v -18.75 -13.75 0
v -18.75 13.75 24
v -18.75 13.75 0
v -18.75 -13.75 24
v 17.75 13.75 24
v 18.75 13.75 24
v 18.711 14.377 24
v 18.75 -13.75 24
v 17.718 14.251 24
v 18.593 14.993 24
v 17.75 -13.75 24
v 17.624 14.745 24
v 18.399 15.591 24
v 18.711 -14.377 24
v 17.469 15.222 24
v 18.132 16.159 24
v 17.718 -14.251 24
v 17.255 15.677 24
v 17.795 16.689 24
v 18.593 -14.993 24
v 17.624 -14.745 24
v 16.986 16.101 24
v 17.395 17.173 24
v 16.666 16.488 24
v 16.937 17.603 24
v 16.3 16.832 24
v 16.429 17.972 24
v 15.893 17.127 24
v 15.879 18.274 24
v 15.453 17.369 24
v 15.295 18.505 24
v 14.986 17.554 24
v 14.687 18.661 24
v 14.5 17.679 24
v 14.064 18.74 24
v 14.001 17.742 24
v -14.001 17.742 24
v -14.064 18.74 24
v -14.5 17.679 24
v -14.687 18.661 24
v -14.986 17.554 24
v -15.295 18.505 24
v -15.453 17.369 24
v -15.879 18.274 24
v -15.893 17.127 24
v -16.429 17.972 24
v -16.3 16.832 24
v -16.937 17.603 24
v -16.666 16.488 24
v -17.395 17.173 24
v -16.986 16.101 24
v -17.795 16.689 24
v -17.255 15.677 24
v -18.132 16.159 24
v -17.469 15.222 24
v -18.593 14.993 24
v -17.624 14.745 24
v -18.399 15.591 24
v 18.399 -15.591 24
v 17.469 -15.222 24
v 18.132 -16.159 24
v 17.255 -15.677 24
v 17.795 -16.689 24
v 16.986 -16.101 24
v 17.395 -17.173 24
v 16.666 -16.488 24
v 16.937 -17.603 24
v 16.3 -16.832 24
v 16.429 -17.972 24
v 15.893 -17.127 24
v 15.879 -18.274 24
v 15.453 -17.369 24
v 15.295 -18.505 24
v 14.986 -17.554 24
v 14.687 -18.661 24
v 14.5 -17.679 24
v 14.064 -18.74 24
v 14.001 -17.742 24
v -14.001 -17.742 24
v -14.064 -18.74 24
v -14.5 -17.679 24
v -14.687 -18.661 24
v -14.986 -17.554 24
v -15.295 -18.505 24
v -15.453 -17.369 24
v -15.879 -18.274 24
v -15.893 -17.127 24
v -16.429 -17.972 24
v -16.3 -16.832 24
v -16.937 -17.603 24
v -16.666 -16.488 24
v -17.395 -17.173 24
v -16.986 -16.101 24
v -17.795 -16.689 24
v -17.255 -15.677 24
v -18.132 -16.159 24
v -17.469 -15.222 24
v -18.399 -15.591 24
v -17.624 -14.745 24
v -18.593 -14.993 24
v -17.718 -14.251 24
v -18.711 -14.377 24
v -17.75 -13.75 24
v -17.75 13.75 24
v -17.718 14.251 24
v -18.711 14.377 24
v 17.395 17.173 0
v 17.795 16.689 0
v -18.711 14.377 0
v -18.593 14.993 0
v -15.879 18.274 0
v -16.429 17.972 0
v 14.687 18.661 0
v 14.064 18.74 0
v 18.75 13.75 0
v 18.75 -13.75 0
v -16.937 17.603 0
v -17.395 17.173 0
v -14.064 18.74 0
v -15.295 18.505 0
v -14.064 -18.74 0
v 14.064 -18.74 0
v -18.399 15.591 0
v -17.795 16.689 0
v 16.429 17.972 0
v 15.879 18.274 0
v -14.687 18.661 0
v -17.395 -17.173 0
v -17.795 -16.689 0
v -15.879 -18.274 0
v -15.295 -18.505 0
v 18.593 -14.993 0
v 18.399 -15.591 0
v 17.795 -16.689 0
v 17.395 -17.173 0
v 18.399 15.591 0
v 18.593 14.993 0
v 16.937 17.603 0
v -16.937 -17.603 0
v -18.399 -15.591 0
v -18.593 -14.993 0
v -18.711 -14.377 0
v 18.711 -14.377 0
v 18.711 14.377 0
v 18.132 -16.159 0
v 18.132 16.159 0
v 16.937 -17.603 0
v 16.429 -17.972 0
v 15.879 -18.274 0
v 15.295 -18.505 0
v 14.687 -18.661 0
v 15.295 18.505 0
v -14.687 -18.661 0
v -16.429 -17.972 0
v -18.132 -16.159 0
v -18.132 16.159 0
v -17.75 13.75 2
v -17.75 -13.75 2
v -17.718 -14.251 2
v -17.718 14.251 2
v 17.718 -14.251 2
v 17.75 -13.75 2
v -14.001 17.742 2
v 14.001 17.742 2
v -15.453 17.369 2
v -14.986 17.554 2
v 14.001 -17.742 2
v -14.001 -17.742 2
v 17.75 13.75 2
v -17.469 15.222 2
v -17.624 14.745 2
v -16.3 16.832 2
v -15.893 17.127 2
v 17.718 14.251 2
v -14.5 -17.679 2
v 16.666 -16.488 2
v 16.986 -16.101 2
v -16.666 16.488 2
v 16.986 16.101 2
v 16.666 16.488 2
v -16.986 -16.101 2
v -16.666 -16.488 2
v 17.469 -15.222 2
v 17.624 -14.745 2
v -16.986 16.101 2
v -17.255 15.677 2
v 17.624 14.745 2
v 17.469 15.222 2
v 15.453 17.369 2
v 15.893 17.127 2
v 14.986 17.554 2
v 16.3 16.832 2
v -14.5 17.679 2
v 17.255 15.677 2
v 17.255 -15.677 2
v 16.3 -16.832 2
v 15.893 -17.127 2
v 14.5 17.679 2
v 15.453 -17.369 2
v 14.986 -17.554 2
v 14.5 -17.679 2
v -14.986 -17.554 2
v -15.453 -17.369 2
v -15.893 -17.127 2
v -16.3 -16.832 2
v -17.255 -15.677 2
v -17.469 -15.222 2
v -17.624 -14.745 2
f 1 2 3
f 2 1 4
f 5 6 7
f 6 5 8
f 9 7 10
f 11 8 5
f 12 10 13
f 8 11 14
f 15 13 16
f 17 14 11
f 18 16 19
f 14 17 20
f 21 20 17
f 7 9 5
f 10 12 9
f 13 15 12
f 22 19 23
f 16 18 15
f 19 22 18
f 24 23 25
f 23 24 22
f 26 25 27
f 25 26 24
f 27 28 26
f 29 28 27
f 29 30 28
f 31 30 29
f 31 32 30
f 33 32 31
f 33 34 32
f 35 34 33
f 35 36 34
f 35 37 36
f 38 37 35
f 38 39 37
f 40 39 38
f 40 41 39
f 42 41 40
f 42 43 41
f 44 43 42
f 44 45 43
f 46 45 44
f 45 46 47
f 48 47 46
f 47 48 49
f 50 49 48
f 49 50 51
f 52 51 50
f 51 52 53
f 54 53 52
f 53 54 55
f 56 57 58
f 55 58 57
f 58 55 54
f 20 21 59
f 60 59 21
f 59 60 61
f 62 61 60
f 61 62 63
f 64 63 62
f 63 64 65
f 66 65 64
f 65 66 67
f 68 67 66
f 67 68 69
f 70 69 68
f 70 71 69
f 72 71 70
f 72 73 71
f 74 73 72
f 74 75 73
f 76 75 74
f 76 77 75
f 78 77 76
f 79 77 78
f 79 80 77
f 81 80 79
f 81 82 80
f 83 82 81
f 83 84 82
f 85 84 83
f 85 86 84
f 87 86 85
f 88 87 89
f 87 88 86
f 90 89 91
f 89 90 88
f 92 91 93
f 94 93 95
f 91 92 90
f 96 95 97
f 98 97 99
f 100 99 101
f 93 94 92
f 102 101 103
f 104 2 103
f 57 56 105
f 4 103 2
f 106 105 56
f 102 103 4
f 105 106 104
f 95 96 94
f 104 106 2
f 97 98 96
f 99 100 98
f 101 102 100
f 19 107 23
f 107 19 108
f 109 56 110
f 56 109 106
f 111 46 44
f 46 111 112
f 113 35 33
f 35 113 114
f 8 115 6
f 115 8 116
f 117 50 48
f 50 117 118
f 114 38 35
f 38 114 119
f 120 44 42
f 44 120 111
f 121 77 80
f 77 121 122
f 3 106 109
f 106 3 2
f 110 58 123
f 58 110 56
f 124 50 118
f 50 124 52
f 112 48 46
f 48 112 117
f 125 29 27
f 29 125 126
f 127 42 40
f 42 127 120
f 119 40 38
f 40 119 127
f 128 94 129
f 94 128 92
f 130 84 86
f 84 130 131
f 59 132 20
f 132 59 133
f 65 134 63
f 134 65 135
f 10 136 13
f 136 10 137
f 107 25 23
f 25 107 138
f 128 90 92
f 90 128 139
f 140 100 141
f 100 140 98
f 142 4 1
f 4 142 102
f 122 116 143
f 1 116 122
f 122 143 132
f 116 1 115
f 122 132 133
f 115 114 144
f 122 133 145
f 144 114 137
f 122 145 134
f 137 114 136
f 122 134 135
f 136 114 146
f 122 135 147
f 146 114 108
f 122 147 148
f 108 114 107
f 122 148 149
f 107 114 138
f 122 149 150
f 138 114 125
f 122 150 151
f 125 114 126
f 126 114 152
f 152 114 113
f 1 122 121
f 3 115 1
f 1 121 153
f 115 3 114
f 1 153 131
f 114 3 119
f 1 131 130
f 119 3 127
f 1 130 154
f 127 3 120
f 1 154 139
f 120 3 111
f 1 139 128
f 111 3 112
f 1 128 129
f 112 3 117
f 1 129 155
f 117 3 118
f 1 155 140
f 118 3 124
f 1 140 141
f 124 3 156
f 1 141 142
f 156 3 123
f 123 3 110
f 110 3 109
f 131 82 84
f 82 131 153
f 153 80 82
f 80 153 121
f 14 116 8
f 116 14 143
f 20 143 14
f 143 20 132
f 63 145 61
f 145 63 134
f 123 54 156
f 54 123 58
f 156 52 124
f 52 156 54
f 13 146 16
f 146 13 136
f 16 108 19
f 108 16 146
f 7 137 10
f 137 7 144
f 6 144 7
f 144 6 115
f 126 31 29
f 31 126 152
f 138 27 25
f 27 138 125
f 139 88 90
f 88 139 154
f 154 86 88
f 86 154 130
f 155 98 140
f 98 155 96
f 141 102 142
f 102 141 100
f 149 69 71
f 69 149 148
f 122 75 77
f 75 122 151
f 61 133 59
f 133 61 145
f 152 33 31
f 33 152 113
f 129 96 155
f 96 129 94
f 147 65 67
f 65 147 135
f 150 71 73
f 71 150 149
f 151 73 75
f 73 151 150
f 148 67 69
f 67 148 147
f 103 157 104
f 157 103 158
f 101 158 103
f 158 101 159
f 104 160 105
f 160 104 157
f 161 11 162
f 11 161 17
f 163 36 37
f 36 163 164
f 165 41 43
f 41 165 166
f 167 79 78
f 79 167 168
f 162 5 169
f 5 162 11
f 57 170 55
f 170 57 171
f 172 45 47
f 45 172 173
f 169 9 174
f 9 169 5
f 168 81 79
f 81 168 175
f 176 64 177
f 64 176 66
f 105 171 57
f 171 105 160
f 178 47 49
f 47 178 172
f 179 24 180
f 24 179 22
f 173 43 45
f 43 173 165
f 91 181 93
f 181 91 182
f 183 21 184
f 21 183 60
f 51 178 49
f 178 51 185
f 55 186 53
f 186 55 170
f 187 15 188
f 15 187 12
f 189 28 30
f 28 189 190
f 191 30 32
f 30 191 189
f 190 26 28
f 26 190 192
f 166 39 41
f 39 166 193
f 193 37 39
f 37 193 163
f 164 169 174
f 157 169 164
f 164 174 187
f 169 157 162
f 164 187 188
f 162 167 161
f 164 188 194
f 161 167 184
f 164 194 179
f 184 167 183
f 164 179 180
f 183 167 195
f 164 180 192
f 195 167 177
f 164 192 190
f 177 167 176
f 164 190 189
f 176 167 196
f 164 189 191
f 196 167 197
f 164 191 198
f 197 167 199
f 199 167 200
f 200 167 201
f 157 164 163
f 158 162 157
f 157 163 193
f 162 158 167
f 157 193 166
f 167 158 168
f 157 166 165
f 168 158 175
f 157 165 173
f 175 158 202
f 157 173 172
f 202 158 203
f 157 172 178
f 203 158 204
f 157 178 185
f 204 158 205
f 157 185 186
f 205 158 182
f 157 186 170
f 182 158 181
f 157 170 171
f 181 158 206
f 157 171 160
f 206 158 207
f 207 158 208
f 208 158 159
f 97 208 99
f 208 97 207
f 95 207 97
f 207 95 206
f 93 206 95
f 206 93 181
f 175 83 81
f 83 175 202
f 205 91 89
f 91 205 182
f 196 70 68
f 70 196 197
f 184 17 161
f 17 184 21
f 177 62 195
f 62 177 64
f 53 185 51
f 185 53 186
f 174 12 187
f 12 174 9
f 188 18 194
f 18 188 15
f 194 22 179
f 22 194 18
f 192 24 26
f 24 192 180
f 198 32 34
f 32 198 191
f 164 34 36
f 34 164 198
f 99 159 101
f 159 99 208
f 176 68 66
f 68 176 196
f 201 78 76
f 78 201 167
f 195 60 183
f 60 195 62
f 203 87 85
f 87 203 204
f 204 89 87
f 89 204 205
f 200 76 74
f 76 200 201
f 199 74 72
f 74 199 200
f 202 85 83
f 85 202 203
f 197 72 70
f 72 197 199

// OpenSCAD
$fn = 50;


difference() {
	union() {
		hull() {
			translate(v = [-13.7500000000, 13.7500000000, 0]) {
				cylinder(h = 24, r = 5);
			}
			translate(v = [13.7500000000, 13.7500000000, 0]) {
				cylinder(h = 24, r = 5);
			}
			translate(v = [-13.7500000000, -13.7500000000, 0]) {
				cylinder(h = 24, r = 5);
			}
			translate(v = [13.7500000000, -13.7500000000, 0]) {
				cylinder(h = 24, r = 5);
			}
		}
	}
	union() {
		translate(v = [0, 0, 2]) {
			hull() {
				translate(v = [-13.7500000000, 13.7500000000, 0]) {
					cylinder(h = 22, r = 4);
				}
				translate(v = [13.7500000000, 13.7500000000, 0]) {
					cylinder(h = 22, r = 4);
				}
				translate(v = [-13.7500000000, -13.7500000000, 0]) {
					cylinder(h = 22, r = 4);
				}
				translate(v = [13.7500000000, -13.7500000000, 0]) {
					cylinder(h = 22, r = 4);
				}
			}
		}
	}
}
